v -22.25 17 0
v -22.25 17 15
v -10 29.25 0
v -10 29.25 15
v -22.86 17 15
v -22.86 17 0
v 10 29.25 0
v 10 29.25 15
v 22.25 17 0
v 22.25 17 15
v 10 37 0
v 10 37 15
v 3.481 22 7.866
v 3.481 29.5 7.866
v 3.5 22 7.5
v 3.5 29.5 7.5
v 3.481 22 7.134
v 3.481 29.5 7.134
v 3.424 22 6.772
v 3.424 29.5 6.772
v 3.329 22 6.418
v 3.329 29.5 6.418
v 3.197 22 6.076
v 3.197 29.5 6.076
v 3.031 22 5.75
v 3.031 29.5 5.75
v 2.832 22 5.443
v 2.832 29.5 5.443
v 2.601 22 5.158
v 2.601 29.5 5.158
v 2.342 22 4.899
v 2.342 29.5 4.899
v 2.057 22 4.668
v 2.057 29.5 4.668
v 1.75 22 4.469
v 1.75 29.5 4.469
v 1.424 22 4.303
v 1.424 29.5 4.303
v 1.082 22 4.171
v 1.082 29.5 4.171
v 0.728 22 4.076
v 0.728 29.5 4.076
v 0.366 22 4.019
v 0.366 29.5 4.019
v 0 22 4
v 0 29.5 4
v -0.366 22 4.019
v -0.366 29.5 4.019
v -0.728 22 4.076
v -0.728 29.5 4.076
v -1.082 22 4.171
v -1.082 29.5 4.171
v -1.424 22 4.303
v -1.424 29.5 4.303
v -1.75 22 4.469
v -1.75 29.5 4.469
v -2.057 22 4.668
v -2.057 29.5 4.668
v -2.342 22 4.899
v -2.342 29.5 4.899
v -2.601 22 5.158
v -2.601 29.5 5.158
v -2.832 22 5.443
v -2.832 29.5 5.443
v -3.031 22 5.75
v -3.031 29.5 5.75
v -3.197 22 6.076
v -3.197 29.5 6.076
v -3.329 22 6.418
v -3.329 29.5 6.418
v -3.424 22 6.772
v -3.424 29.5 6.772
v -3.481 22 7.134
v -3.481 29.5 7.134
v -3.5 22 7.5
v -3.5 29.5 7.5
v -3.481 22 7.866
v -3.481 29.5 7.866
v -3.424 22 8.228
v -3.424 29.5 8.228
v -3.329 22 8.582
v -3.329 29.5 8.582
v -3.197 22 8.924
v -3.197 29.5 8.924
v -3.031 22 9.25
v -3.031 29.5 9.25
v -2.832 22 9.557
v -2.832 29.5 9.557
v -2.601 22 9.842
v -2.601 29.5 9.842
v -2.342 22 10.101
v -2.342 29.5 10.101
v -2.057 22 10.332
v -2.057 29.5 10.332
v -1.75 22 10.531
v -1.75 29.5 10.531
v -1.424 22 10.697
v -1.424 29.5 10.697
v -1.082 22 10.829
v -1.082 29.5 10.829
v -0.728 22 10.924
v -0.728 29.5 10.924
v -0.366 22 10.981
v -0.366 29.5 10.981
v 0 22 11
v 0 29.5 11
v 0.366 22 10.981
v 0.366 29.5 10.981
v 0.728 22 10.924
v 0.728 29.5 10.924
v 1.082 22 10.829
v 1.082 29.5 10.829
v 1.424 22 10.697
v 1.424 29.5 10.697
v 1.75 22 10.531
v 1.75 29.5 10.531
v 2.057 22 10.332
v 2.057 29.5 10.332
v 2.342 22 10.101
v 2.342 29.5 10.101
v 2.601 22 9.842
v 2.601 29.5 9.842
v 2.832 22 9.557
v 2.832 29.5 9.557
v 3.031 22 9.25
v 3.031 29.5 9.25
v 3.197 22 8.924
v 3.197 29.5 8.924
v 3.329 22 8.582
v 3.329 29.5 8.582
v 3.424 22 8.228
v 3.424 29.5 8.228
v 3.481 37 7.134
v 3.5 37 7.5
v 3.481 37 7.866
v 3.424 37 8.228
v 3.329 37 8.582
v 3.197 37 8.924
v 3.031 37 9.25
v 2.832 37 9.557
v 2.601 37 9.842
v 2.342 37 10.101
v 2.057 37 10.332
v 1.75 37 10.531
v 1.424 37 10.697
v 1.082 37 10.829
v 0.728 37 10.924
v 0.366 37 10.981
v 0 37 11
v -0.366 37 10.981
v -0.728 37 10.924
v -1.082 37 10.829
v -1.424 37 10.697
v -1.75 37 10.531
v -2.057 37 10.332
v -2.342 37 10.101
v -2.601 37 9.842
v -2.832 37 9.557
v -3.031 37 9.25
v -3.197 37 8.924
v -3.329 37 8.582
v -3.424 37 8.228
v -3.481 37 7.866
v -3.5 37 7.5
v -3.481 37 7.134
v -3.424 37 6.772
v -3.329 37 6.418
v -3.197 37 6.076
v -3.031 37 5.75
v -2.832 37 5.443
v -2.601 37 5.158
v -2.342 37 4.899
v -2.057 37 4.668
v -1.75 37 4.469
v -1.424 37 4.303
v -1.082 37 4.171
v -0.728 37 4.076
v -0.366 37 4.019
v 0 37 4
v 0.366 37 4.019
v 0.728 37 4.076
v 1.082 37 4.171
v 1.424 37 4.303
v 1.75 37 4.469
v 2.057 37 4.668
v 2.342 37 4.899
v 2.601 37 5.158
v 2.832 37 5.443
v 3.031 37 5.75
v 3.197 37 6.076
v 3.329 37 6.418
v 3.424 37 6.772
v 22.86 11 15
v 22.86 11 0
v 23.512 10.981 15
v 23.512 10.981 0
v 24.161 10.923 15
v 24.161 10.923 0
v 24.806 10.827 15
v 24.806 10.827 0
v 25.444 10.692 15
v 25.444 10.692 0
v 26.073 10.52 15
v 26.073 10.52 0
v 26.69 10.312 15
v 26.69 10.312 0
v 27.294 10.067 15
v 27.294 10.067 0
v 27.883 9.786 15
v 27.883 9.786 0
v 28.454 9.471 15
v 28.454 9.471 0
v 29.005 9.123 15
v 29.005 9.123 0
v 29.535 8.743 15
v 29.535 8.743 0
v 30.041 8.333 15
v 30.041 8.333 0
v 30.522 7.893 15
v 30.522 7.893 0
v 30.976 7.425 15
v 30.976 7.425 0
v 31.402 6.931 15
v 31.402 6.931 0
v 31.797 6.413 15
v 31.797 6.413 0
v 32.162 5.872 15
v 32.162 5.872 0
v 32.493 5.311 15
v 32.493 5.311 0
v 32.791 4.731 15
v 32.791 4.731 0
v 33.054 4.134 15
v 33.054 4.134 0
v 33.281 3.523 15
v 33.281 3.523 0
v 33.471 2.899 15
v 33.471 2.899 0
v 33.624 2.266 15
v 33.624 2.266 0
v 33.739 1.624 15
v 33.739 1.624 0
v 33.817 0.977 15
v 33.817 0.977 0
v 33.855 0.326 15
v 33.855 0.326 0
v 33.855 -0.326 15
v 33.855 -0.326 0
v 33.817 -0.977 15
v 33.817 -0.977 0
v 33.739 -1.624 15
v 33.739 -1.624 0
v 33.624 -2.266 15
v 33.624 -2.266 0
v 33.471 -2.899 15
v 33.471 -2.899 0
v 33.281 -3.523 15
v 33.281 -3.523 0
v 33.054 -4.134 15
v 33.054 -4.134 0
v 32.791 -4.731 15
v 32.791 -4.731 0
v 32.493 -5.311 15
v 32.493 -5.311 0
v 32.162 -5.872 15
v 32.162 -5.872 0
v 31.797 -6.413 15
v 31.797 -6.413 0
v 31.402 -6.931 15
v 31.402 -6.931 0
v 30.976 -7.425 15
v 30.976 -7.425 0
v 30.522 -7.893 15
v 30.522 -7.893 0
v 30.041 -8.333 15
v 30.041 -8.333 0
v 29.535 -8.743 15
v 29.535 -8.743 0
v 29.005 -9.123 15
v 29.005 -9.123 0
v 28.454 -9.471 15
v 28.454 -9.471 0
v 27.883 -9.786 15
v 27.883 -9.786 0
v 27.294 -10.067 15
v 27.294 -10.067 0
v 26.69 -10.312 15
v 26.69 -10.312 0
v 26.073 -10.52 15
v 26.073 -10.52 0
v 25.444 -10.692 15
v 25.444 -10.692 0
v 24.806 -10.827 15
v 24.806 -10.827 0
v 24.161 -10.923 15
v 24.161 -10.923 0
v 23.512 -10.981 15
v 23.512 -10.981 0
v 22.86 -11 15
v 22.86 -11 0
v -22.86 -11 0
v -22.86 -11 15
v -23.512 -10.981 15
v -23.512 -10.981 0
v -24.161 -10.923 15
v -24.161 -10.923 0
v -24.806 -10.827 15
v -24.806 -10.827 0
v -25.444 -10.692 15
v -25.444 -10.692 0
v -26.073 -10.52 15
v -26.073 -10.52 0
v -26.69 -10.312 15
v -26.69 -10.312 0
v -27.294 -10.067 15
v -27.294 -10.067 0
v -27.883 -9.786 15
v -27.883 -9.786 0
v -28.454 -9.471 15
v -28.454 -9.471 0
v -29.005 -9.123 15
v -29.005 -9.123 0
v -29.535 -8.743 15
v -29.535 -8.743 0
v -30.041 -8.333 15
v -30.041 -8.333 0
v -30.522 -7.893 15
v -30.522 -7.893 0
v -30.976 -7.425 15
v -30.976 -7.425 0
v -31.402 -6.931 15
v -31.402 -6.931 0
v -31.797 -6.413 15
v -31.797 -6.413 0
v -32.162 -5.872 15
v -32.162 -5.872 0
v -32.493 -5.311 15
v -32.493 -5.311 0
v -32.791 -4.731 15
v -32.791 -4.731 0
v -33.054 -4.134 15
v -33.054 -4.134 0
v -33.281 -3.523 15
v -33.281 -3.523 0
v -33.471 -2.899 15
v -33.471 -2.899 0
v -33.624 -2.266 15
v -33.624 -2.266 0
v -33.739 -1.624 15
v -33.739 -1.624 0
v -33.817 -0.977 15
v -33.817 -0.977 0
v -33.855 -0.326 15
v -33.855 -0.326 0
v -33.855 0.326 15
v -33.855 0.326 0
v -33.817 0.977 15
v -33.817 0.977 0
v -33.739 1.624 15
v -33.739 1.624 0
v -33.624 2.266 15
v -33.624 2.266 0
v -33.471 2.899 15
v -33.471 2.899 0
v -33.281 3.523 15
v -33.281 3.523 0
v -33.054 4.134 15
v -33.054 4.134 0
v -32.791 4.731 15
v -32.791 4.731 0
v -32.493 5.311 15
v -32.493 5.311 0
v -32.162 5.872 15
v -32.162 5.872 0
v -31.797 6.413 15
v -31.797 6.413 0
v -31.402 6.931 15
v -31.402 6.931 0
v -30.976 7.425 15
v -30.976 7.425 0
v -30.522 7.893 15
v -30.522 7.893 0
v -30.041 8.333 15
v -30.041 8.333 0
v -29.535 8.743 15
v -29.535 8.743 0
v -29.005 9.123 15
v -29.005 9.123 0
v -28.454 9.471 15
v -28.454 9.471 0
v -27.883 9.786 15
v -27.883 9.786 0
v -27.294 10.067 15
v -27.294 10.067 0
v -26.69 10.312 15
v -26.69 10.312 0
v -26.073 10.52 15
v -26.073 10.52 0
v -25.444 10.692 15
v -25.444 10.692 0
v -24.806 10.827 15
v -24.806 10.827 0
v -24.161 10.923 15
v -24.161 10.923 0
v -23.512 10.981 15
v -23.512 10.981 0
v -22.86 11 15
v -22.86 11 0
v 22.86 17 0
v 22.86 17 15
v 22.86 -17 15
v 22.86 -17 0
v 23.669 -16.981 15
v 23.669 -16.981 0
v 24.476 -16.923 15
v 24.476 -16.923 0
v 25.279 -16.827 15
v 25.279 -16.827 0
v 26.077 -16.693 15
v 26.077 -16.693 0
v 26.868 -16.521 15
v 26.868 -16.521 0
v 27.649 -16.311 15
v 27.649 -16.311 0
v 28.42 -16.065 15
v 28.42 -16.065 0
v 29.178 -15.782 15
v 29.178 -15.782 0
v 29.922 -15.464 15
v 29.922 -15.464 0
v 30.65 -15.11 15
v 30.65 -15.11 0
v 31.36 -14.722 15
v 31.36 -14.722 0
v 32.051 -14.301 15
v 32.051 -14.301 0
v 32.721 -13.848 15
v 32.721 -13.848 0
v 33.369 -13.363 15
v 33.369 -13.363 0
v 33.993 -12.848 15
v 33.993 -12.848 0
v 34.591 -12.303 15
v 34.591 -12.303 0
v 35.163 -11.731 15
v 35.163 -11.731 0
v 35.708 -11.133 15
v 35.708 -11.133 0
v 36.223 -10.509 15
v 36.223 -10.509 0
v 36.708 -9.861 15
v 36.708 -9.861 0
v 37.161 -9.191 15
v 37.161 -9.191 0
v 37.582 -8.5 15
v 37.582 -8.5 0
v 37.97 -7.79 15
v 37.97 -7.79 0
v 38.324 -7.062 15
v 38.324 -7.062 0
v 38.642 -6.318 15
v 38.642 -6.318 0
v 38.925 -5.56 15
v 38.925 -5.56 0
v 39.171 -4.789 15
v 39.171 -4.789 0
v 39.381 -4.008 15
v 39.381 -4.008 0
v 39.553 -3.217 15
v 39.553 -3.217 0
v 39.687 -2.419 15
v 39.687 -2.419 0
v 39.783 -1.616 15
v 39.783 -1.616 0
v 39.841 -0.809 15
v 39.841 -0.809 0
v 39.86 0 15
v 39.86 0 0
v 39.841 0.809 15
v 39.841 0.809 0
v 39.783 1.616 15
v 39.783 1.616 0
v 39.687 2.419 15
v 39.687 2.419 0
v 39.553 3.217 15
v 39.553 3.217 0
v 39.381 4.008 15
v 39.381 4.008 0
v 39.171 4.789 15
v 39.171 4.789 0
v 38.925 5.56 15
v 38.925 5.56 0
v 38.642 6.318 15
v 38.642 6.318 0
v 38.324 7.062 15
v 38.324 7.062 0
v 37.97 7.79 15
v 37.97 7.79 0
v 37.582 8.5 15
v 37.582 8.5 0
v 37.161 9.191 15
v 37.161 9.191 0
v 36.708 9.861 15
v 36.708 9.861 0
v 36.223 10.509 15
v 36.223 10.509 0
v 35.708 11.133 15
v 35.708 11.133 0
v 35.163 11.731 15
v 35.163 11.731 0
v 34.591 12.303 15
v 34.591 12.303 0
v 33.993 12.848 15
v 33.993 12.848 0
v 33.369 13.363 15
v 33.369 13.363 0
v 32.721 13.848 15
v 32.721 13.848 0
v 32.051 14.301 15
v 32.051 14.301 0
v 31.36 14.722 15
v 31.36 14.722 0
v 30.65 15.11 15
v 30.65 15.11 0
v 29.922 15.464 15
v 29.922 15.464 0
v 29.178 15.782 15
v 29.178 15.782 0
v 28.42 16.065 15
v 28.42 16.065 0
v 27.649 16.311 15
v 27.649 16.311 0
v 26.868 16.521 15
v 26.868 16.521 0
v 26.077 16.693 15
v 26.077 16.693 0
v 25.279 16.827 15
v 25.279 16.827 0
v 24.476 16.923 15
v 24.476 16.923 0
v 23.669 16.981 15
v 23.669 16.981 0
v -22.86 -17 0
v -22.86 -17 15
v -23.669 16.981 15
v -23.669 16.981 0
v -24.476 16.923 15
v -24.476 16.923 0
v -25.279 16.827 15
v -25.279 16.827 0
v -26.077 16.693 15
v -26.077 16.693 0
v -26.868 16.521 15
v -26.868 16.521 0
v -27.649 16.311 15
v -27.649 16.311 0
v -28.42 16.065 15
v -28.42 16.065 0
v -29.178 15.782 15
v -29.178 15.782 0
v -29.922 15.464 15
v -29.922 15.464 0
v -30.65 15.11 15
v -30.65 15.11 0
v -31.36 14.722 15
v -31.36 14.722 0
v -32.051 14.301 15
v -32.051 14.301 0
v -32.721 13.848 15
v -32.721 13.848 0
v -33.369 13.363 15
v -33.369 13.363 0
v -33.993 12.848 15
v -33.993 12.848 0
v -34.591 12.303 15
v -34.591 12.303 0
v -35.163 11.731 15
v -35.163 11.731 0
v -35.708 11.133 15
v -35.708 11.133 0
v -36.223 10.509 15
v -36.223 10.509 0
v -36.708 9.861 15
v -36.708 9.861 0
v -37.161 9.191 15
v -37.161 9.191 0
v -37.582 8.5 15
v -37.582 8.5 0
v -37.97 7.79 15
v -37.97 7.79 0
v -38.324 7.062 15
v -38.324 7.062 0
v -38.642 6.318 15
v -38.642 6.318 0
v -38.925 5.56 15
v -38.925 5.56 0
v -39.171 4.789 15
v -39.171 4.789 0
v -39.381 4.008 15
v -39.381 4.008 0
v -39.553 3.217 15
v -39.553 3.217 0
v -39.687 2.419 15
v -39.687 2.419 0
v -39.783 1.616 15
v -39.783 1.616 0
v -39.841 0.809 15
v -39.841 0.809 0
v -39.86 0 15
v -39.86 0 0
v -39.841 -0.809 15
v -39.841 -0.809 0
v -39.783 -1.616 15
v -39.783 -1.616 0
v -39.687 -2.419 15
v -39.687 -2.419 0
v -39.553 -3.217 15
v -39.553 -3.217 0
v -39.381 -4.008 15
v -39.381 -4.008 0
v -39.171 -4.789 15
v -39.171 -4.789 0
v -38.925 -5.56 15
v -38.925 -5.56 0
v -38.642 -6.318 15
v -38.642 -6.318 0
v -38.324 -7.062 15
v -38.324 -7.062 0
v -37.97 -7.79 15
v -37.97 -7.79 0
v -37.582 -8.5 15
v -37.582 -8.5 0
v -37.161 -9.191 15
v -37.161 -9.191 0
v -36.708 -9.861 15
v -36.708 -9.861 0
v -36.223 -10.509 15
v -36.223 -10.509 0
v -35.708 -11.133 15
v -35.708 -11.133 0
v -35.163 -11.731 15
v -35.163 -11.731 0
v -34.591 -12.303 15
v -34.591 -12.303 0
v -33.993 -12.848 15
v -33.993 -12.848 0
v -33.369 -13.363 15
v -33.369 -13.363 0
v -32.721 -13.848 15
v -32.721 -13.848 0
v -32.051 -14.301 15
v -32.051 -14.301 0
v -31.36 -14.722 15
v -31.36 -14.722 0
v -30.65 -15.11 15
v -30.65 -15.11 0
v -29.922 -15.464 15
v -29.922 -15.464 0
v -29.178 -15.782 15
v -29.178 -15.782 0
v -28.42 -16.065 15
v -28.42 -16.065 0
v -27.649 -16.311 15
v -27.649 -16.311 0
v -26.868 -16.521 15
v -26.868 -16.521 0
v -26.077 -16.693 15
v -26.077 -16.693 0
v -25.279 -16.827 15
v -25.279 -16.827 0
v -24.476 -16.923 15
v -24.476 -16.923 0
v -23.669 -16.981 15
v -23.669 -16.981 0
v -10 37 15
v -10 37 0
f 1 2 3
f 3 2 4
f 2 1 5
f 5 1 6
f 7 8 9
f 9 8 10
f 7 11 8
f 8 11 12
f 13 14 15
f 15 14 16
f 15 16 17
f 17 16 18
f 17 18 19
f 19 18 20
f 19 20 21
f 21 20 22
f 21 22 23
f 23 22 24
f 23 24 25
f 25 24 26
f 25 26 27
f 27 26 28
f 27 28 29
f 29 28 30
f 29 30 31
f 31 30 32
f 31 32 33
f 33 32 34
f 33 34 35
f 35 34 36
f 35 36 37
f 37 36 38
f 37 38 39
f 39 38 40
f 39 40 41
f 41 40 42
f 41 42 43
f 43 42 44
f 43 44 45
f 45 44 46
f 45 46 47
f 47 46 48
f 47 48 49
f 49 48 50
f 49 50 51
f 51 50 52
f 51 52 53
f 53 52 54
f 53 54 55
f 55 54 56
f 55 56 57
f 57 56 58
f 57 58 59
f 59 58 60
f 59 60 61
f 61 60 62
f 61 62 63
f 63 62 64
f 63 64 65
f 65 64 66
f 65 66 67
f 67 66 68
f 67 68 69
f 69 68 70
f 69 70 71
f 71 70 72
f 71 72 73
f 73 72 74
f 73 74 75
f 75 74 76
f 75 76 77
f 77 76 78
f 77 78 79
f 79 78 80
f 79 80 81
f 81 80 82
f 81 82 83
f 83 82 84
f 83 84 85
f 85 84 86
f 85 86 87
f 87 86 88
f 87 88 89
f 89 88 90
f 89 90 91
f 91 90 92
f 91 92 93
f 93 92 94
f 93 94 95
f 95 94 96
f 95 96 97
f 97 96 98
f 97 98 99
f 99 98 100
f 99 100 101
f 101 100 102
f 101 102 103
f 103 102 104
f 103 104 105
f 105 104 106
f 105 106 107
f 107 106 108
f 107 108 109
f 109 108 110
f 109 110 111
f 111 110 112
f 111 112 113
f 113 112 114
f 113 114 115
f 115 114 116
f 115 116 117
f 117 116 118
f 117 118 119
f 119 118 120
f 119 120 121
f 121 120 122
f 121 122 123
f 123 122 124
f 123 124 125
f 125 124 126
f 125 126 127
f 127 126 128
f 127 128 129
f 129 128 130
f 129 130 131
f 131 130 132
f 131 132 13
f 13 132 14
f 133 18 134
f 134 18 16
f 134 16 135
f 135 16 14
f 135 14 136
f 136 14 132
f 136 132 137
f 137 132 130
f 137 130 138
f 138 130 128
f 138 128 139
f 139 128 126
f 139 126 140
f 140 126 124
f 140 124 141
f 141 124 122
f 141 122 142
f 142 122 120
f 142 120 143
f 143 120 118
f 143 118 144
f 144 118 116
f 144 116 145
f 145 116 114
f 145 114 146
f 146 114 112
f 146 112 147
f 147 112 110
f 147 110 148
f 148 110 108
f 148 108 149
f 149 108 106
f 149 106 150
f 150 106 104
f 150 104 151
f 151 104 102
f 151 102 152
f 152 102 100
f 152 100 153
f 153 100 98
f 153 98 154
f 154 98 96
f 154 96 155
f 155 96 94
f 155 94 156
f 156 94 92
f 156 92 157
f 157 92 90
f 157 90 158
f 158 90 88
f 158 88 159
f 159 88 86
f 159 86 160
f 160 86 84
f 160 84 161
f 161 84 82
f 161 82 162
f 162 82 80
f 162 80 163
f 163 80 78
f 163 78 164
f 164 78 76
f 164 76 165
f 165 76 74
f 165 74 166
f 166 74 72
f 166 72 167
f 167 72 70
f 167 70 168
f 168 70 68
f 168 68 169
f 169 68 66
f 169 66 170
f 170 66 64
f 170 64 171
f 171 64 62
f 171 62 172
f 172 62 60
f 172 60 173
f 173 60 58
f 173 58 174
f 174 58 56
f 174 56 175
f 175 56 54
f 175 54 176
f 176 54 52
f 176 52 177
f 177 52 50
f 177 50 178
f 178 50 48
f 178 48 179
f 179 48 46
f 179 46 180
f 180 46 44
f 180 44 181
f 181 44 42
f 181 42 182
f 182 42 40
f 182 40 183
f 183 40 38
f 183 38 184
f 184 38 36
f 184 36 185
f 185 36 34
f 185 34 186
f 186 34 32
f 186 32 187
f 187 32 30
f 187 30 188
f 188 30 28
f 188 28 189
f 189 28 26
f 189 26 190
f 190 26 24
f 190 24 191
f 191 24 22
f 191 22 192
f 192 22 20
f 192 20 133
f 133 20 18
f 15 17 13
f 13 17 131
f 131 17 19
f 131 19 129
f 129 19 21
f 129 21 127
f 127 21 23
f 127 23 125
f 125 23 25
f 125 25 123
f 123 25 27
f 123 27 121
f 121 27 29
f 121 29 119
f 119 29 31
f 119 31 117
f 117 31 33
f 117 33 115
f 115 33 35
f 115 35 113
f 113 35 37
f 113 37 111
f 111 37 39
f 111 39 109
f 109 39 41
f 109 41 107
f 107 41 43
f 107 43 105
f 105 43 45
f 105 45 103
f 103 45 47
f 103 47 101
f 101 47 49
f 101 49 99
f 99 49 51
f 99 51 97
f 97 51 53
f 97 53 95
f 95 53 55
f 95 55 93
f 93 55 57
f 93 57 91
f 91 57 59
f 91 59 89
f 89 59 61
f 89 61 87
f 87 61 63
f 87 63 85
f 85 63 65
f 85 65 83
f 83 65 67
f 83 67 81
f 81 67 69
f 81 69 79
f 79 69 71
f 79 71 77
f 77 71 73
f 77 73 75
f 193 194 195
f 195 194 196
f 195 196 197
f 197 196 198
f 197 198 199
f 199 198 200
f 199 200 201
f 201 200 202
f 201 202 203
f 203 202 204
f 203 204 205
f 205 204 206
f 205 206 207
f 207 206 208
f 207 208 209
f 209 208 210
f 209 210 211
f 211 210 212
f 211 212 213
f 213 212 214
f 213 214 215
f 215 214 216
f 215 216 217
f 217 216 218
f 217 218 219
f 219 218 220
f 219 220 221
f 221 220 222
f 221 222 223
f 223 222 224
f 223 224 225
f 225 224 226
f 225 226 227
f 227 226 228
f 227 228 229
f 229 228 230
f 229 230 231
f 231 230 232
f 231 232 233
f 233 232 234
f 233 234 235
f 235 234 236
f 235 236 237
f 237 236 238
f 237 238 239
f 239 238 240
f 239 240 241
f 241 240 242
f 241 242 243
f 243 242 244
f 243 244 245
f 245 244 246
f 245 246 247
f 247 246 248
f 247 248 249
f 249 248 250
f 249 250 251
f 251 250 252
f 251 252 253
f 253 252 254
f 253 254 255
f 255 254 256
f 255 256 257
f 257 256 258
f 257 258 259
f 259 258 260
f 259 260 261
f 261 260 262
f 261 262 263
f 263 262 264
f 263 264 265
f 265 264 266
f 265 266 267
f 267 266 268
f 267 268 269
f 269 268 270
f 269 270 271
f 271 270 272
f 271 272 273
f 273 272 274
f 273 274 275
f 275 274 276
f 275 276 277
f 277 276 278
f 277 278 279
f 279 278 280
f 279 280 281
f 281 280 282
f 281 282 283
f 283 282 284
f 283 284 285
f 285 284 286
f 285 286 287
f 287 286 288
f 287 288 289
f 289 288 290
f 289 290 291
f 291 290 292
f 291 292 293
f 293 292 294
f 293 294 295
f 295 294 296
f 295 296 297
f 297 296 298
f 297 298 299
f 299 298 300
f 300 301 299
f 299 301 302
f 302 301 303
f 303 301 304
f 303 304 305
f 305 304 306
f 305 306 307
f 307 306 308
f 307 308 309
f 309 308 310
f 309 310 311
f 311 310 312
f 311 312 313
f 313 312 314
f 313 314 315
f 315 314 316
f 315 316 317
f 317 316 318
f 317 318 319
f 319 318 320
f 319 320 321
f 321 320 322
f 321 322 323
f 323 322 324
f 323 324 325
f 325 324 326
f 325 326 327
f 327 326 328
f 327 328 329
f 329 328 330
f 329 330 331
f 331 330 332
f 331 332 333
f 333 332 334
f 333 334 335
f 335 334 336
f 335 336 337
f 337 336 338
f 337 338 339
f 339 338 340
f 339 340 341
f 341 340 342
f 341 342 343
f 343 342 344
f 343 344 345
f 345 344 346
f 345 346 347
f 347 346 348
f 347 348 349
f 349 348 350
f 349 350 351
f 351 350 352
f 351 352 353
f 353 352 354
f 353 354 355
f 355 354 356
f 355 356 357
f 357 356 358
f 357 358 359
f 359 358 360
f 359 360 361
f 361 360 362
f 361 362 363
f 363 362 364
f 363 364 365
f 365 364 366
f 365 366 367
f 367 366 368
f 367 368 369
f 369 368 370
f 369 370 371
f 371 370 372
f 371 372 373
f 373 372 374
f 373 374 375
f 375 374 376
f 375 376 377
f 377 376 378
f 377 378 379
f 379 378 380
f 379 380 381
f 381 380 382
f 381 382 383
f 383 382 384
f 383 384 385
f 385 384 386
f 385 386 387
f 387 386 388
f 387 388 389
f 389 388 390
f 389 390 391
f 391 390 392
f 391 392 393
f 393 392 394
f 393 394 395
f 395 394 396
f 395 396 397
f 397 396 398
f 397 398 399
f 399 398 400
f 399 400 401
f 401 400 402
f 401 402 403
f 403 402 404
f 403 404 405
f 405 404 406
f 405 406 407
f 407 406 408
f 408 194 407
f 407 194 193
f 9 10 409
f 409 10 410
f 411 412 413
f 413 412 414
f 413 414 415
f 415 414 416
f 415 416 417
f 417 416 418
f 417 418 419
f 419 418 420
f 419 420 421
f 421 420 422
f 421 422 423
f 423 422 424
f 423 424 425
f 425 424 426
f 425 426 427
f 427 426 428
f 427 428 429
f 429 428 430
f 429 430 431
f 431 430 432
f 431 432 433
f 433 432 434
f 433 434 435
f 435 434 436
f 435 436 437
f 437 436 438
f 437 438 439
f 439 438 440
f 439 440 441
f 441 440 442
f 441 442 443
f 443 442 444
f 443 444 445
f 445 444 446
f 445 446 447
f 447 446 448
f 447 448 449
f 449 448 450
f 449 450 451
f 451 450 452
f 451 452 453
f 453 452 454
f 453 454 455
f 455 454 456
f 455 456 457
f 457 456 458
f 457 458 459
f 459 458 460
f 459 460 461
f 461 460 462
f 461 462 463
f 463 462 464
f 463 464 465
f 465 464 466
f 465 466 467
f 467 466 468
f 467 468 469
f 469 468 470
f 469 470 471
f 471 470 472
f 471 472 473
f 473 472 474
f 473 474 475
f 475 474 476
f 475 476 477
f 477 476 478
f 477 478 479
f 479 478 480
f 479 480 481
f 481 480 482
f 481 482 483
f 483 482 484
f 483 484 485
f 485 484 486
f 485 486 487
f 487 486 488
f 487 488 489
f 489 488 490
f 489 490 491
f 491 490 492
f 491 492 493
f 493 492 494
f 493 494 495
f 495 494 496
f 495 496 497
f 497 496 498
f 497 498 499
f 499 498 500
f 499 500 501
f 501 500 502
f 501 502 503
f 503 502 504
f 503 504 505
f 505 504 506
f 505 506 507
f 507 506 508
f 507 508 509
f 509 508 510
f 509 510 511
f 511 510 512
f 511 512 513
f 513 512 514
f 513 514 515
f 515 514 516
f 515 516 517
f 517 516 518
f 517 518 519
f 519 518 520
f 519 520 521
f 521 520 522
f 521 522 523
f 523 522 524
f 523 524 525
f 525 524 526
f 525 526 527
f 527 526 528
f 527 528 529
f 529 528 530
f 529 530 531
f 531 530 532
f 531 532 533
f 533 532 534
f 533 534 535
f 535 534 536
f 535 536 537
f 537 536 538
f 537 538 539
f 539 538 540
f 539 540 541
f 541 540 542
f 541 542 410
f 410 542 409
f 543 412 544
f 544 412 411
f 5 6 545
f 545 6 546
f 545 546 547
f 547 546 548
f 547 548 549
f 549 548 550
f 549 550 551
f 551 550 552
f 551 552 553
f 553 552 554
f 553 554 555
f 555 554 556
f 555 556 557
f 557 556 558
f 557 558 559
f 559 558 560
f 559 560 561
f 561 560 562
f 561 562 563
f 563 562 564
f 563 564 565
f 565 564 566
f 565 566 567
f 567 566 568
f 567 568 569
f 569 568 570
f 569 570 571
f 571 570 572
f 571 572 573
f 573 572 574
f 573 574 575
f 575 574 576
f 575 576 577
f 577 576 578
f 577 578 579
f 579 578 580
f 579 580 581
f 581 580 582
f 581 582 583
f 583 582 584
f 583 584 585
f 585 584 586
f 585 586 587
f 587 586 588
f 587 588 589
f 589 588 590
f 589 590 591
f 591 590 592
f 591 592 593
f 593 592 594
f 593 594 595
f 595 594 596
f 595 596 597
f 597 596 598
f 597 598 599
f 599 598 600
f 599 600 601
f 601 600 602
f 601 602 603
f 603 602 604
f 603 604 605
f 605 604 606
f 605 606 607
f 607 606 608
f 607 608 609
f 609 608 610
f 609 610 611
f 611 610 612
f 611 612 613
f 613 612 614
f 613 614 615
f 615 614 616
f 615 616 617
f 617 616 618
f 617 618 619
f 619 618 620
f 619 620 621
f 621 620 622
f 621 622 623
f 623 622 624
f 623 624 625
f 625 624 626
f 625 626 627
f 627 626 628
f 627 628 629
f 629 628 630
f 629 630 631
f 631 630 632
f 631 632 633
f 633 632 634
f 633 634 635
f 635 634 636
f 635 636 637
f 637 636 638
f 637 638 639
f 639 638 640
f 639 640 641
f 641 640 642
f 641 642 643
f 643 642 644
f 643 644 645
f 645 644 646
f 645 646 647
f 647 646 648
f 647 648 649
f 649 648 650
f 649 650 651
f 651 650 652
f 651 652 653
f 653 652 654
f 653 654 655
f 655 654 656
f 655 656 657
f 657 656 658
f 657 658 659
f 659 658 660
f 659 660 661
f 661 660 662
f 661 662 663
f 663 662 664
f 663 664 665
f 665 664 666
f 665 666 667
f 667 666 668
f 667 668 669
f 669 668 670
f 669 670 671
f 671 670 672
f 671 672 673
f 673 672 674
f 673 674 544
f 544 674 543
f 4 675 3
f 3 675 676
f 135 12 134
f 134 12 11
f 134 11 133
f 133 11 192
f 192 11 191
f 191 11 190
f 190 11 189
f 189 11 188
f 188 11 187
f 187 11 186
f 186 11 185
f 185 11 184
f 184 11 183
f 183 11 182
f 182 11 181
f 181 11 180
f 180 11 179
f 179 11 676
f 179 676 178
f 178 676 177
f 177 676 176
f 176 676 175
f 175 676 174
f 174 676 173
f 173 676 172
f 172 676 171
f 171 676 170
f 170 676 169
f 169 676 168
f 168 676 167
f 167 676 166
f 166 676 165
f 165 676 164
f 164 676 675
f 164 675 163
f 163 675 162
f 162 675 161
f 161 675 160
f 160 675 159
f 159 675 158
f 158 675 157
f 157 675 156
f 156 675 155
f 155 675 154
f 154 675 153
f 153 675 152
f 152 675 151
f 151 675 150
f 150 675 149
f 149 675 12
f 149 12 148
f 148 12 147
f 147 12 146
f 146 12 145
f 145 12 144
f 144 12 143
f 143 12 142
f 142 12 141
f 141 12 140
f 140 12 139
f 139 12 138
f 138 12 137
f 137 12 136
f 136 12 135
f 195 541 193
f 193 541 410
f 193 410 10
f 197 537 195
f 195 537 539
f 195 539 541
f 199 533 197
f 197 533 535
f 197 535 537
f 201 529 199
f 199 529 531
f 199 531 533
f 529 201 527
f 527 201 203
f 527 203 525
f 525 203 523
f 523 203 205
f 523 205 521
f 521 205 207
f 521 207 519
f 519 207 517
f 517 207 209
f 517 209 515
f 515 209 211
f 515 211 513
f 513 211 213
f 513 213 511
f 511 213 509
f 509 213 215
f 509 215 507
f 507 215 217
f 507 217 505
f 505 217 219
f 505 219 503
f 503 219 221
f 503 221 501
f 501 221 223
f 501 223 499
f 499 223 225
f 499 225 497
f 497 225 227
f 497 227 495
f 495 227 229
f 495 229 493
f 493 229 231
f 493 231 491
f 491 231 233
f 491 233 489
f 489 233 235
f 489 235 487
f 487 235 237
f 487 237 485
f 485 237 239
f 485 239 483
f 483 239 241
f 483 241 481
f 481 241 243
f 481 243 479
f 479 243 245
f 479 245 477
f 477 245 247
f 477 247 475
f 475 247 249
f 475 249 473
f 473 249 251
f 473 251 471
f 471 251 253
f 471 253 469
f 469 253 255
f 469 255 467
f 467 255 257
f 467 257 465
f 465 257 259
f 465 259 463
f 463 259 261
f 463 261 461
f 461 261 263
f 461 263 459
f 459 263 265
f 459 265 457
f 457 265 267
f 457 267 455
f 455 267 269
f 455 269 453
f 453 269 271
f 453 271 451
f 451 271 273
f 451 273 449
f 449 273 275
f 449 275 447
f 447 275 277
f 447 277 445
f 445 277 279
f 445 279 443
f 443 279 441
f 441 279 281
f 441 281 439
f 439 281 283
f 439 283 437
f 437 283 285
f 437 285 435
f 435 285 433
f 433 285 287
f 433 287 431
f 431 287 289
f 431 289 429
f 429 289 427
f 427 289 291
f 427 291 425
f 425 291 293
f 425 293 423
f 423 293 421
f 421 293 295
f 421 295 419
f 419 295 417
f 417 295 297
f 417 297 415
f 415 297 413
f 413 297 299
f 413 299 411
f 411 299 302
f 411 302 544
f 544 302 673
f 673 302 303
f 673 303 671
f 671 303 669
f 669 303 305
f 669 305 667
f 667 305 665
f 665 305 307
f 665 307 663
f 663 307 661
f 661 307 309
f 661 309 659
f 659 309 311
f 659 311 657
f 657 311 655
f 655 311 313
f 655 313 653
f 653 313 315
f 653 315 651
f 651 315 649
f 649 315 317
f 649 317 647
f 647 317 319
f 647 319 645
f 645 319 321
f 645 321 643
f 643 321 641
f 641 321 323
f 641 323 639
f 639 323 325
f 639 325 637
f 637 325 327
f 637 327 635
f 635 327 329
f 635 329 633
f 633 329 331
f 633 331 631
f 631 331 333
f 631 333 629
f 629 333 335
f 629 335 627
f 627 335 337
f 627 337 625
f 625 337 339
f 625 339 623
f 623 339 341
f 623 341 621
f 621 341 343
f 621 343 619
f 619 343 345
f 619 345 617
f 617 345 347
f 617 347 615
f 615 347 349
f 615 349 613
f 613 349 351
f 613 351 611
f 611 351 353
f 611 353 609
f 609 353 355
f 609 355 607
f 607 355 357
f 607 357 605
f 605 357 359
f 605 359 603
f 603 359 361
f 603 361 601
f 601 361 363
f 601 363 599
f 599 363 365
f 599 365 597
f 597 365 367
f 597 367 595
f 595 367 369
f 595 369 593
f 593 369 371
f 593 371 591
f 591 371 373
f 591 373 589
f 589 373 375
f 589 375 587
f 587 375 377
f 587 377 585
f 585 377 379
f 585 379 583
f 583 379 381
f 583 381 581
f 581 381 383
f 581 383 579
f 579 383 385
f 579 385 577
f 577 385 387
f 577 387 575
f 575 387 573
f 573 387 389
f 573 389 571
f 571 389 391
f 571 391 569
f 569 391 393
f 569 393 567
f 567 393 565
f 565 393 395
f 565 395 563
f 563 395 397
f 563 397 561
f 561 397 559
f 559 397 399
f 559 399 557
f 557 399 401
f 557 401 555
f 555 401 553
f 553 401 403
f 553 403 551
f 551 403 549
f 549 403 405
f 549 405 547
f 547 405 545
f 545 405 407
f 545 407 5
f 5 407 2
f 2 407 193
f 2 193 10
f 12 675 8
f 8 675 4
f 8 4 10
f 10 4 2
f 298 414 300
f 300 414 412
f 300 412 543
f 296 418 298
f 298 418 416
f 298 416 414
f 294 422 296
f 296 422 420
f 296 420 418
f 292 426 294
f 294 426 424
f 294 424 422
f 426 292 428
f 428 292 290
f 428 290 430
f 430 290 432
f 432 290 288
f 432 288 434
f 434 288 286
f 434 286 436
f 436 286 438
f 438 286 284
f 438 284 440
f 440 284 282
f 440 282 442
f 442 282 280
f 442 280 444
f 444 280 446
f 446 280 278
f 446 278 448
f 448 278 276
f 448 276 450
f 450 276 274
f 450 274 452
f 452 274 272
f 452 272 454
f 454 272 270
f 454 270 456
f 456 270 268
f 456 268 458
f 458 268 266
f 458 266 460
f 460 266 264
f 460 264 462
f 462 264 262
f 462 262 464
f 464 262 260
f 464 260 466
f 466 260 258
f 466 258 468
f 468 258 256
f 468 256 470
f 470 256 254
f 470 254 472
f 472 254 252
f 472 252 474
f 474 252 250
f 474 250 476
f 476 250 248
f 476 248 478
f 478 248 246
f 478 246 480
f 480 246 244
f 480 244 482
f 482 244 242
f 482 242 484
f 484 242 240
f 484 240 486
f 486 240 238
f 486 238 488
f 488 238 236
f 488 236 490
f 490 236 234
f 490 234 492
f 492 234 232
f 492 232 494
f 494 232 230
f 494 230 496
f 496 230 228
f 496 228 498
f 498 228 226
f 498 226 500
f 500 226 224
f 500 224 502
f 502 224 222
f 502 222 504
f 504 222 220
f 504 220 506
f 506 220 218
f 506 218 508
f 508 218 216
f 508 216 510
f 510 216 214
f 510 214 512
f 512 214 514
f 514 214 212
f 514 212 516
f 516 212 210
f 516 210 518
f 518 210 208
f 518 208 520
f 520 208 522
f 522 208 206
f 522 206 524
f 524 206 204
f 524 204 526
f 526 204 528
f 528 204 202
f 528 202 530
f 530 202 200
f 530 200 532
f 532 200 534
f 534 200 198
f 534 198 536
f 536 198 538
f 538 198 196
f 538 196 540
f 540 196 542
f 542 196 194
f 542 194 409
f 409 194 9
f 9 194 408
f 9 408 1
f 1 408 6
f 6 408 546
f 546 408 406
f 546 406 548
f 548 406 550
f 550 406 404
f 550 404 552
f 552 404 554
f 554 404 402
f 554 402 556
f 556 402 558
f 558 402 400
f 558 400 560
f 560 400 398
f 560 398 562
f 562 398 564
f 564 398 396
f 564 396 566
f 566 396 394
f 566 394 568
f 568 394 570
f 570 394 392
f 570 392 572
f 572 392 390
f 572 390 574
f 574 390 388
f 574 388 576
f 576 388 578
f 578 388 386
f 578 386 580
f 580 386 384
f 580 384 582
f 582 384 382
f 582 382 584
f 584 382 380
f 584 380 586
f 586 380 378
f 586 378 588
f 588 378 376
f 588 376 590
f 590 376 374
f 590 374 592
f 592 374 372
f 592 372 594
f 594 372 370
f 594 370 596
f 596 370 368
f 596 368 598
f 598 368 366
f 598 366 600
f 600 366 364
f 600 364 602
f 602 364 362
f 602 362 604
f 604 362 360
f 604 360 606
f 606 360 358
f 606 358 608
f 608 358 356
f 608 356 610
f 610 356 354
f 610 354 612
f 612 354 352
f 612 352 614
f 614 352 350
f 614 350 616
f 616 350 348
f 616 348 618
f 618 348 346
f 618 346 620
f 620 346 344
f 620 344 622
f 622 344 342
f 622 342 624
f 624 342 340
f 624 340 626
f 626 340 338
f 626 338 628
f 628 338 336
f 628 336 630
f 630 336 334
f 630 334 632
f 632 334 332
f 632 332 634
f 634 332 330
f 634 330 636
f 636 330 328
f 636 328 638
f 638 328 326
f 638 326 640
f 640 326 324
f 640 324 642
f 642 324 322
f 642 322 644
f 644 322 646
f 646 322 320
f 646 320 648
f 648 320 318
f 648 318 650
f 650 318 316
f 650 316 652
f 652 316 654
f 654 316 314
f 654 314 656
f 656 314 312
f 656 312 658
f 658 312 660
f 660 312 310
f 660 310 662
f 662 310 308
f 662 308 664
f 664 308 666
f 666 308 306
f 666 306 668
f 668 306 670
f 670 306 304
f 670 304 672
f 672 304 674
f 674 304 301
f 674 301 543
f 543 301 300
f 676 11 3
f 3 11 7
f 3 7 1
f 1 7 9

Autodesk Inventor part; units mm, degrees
ref_plane "YZ Plane" through (0, 0, 0) normal (1, 0, 0) x (0, 1, 0)
ref_plane "XZ Plane" through (0, 0, 0) normal (0, 1, 0) x (-1, 0, 0)
ref_plane "XY Plane" through (0, 0, 0) normal (0, 0, 1) x (1, 0, 0)
sketch "Sketch1" plane through (0, 0, 0) normal (0, 0, 1) x (1, 0, 0)
  line L0 (22.86, 0) -> (-22.86, 0) construction
  line L1 (22.86, 11) -> (-22.86, 11)
  line L2 (-22.86, -11) -> (22.86, -11)
  arc A0 (22.86, -11) -> (22.86, 11) centre (22.86, 0) ccw
  arc A1 (-22.86, 11) -> (-22.86, -11) centre (-22.86, 0) ccw
  line L3 (22.86, 0) -> (-22.86, 0) construction
  line L4 (22.86, 17) -> (-22.86, 17)
  line L5 (-22.86, -17) -> (22.86, -17)
  arc A2 (22.86, -17) -> (22.86, 17) centre (22.86, 0) ccw
  arc A3 (-22.86, 17) -> (-22.86, -17) centre (-22.86, 0) ccw
  line L6 (-10, 17) -> (10, 17)
  line L7 (10, 17) -> (10, 37)
  line L8 (10, 37) -> (-10, 37)
  line L9 (-10, 37) -> (-10, 17)
  point P0 (0, 0)
  point P1 (0, 17)
  dimension "d0" = 22
  dimension "d1" = 6
  dimension "d2" = 45.72
  dimension "d3" = 20
  dimension "d4" = 20
extrude "Extrusion1" add sketch "Sketch1" along normal blind 15
sketch "Sketch2" plane through (-10, 37, 0) normal (0, 1, 0) x (1, 0, 0)
  line L0 (-12.86, -15) -> (32.86, -15) construction
  line L1 (10, -15) -> (10, 0) construction
  circle A0 centre (10, -7.5) radius 3.5
  dimension "d7" = 7
extrude "Extrusion2" cut sketch "Sketch2" against normal blind 15
chamfer "Chamfer1" distance 12.25 angle 45 2 edges at (10, 17, 7.5) (-10, 17, 7.5)
properties part number "yoke"
